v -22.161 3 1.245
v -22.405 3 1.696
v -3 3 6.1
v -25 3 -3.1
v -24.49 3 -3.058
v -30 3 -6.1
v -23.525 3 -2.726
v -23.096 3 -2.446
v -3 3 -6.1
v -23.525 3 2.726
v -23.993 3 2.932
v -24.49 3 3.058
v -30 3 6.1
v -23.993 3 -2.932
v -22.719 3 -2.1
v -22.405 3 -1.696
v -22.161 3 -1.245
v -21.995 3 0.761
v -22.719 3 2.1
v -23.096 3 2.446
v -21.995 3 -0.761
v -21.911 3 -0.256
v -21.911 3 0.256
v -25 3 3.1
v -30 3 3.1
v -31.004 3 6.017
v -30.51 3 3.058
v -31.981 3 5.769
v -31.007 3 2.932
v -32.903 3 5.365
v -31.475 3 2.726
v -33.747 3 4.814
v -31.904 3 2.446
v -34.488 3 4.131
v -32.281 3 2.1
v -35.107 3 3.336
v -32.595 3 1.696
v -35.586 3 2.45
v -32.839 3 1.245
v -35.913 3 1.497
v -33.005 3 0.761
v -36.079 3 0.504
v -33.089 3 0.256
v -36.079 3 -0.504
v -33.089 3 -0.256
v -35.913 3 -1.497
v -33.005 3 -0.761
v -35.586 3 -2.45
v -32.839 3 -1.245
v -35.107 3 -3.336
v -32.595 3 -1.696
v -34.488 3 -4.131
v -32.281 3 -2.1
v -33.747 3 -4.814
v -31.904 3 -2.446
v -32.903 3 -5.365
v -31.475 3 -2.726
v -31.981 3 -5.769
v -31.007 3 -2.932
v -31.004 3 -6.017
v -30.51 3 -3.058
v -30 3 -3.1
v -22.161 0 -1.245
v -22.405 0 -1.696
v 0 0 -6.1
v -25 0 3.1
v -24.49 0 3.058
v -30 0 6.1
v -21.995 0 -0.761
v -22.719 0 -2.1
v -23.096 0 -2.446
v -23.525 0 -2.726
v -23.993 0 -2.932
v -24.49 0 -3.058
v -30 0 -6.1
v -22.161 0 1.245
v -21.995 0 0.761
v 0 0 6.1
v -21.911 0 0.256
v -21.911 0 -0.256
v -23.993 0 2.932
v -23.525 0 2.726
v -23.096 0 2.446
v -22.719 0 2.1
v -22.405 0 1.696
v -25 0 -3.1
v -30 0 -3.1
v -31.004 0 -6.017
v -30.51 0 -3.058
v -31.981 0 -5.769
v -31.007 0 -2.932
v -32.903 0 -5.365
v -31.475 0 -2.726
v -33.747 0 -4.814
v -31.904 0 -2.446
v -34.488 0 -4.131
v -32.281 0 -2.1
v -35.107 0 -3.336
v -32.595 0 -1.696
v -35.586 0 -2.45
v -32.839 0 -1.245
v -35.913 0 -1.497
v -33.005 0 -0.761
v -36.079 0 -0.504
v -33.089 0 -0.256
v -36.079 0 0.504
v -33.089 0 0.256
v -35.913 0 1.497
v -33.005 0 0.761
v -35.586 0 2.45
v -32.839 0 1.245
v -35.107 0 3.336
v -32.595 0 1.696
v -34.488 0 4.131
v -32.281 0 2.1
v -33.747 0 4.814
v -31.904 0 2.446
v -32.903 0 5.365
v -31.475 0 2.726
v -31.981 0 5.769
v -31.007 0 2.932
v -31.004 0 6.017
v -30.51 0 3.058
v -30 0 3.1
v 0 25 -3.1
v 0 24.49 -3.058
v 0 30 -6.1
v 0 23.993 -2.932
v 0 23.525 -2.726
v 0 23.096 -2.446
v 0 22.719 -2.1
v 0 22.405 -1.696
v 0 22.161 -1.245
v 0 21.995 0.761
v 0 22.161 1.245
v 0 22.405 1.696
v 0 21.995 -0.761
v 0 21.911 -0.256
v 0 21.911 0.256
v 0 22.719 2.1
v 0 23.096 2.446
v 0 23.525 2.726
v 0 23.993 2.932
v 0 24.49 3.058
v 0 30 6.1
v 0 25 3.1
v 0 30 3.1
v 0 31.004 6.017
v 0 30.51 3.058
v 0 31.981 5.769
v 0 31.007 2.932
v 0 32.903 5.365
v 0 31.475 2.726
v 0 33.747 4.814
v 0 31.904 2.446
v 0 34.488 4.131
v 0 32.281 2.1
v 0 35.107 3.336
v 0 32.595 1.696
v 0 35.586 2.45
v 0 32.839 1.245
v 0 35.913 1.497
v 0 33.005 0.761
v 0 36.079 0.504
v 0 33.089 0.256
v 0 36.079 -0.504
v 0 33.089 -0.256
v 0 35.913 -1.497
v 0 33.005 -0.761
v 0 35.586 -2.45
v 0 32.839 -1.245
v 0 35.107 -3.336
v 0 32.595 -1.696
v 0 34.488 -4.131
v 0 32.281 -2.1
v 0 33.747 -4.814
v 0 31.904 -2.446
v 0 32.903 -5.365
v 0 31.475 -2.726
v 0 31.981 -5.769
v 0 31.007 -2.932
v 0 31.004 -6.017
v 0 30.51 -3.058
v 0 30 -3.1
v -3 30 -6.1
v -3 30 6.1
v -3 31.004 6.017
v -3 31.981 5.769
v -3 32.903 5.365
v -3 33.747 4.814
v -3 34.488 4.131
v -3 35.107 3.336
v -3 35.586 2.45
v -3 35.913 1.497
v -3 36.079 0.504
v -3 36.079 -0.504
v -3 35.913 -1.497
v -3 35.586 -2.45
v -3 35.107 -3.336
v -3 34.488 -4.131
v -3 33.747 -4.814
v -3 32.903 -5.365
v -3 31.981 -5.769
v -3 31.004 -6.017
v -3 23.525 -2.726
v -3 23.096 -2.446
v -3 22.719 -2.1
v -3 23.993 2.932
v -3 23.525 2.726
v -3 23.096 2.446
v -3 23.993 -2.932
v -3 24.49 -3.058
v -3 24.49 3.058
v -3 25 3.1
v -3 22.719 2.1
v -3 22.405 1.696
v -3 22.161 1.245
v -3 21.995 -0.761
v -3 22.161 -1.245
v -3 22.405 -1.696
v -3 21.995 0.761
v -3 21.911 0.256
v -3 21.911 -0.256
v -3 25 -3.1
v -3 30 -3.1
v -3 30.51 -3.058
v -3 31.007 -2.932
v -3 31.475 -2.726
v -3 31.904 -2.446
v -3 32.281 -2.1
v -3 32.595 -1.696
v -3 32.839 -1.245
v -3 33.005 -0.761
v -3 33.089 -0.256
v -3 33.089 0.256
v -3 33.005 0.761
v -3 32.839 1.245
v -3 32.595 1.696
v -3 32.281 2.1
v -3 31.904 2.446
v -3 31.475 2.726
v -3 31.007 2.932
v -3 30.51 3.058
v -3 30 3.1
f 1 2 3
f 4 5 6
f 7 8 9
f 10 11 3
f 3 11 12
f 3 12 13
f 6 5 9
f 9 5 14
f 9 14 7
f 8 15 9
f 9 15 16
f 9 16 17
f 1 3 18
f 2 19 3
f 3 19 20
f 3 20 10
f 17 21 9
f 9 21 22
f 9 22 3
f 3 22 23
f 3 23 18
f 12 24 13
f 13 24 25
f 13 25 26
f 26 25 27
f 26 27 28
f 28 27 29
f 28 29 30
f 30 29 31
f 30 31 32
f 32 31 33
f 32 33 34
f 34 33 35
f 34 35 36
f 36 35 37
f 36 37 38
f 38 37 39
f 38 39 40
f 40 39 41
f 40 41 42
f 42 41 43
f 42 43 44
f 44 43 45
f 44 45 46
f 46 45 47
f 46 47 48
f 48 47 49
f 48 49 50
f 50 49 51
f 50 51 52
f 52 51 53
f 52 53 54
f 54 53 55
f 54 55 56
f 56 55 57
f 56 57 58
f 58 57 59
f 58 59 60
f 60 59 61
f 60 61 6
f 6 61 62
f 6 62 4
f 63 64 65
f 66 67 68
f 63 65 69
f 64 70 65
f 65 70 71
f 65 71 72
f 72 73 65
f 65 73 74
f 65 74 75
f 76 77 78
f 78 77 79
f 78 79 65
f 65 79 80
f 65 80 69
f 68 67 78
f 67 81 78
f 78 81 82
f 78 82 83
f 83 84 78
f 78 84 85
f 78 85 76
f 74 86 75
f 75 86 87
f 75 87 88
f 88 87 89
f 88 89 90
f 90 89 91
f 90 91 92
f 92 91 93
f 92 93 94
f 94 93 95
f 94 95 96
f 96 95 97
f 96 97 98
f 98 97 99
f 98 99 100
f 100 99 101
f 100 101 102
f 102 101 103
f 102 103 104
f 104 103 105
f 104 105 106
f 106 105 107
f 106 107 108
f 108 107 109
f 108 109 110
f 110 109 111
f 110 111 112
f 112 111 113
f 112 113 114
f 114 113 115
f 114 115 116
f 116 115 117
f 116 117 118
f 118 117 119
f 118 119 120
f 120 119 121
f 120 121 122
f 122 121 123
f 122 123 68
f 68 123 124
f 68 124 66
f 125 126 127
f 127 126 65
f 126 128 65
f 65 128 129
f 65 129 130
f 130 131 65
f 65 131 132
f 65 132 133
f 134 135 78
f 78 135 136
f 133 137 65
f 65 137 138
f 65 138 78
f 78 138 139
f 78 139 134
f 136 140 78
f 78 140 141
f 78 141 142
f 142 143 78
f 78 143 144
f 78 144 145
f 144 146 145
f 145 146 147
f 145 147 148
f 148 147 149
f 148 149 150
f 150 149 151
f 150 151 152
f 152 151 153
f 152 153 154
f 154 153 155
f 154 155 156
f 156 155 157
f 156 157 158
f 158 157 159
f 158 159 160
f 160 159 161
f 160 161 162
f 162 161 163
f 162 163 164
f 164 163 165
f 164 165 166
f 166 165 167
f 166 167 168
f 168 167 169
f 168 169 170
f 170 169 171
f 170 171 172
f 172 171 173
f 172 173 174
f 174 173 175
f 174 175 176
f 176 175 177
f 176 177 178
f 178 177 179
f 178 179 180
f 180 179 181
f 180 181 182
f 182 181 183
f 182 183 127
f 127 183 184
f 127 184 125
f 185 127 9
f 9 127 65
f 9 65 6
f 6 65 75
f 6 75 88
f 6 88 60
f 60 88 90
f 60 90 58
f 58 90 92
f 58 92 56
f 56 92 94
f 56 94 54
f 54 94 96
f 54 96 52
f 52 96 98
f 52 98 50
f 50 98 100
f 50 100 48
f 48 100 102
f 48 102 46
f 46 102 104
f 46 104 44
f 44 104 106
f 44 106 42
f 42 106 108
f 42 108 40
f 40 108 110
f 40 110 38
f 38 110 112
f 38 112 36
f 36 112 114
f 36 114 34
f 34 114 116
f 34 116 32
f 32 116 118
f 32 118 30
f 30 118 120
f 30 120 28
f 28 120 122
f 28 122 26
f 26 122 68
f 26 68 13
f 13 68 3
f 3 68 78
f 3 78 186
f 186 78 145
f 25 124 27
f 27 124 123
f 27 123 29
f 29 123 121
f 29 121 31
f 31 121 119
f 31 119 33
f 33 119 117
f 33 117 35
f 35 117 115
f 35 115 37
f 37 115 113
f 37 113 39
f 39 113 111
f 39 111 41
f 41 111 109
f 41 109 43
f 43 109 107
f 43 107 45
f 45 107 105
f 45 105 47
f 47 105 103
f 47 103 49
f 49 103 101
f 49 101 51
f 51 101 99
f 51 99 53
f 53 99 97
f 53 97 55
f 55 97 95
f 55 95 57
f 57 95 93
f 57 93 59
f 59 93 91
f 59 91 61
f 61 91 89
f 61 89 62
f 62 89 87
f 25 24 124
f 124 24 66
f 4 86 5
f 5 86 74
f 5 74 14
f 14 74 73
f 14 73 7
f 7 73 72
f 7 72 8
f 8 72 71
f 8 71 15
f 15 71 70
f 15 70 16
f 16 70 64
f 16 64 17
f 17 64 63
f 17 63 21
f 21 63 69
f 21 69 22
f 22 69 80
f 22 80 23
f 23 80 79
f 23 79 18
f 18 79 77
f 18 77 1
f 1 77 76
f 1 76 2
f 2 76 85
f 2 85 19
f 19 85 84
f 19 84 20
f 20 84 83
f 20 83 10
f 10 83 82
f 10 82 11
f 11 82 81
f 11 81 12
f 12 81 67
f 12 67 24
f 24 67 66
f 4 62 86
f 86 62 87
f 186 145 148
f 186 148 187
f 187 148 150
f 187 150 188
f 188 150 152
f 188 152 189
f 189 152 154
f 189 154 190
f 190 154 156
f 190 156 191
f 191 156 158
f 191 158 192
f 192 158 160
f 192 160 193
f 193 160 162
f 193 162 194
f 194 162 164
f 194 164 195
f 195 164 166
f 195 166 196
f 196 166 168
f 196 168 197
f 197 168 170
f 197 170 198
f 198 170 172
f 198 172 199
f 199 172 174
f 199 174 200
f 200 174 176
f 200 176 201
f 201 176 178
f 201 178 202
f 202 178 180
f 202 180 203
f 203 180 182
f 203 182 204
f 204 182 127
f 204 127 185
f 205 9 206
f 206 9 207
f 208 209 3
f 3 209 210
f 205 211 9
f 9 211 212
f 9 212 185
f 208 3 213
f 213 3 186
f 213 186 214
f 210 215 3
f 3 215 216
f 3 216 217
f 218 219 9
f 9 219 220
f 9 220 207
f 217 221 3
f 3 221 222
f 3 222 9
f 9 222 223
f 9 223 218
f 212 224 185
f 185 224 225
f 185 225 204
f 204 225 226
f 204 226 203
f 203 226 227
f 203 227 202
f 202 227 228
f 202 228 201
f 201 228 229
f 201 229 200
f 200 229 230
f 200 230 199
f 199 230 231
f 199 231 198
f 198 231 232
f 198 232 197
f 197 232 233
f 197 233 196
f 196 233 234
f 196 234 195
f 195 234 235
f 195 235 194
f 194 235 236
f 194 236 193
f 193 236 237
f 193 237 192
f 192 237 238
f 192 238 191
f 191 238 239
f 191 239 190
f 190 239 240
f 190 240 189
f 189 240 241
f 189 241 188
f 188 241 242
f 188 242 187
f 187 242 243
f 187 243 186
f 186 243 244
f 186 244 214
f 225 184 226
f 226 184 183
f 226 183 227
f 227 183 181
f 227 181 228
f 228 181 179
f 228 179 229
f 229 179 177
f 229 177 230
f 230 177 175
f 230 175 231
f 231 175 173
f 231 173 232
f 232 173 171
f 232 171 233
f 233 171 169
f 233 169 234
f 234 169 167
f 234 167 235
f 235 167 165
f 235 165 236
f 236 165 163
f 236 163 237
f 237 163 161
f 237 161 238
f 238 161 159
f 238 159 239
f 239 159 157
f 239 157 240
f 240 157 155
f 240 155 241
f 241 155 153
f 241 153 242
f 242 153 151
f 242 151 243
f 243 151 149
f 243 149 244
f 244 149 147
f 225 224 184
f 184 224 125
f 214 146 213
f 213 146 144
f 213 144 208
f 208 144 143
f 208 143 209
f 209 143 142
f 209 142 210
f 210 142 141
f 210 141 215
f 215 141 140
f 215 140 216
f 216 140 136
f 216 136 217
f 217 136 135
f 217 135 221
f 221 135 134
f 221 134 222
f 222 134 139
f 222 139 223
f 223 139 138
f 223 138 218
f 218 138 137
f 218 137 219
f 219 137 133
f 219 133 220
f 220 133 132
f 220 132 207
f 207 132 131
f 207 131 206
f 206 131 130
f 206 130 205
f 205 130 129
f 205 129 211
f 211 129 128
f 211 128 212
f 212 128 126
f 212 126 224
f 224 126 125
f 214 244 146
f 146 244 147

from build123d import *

# Parameters (mm, degrees)
BOSS_EXTRUDE1_DEPTH = 3
BOSS_EXTRUDE3_DEPTH = 3


with BuildPart() as part:
    # Sketch1 → Boss-Extrude1 (new body)
    with BuildSketch(Plane(origin=(0, 0, 0), x_dir=(1, 0, 0), z_dir=(0, 1, 0))):
        with BuildLine():
            Line((0, -6.1), (-30, -6.1))
            ThreePointArc((-30, -6.1), (-36.1, 0), (-30, 6.1))
            Line((-30, 6.1), (0, 6.1))
            Line((0, 6.1), (0, -6.1))
        make_face()
        with BuildLine():
            Line((-30, 3.1), (-25, 3.1))
            ThreePointArc((-25, 3.1), (-21.9, 0), (-25, -3.1))
            Line((-25, -3.1), (-30, -3.1))
            ThreePointArc((-30, -3.1), (-33.1, 0), (-30, 3.1))
        make_face(mode=Mode.SUBTRACT)
    extrude(amount=BOSS_EXTRUDE1_DEPTH)

    # Sketch4 → Boss-Extrude3 (add)
    with BuildSketch(Plane(origin=(0, 0, 0), x_dir=(0, 0, -1), z_dir=(1, 0, 0))):
        with BuildLine():
            Line((-6.1, 0), (-6.1, 30))
            ThreePointArc((-6.1, 30), (0, 36.1), (6.1, 30))
            Line((6.1, 30), (6.1, 0))
            Line((6.1, 0), (-6.1, 0))
        make_face()
        with BuildLine():
            Line((3.1, 30), (3.1, 25))
            ThreePointArc((3.1, 25), (0, 21.9), (-3.1, 25))
            Line((-3.1, 25), (-3.1, 30))
            ThreePointArc((-3.1, 30), (0, 33.1), (3.1, 30))
        make_face(mode=Mode.SUBTRACT)
    extrude(amount=-BOSS_EXTRUDE3_DEPTH)


solid = part.part
